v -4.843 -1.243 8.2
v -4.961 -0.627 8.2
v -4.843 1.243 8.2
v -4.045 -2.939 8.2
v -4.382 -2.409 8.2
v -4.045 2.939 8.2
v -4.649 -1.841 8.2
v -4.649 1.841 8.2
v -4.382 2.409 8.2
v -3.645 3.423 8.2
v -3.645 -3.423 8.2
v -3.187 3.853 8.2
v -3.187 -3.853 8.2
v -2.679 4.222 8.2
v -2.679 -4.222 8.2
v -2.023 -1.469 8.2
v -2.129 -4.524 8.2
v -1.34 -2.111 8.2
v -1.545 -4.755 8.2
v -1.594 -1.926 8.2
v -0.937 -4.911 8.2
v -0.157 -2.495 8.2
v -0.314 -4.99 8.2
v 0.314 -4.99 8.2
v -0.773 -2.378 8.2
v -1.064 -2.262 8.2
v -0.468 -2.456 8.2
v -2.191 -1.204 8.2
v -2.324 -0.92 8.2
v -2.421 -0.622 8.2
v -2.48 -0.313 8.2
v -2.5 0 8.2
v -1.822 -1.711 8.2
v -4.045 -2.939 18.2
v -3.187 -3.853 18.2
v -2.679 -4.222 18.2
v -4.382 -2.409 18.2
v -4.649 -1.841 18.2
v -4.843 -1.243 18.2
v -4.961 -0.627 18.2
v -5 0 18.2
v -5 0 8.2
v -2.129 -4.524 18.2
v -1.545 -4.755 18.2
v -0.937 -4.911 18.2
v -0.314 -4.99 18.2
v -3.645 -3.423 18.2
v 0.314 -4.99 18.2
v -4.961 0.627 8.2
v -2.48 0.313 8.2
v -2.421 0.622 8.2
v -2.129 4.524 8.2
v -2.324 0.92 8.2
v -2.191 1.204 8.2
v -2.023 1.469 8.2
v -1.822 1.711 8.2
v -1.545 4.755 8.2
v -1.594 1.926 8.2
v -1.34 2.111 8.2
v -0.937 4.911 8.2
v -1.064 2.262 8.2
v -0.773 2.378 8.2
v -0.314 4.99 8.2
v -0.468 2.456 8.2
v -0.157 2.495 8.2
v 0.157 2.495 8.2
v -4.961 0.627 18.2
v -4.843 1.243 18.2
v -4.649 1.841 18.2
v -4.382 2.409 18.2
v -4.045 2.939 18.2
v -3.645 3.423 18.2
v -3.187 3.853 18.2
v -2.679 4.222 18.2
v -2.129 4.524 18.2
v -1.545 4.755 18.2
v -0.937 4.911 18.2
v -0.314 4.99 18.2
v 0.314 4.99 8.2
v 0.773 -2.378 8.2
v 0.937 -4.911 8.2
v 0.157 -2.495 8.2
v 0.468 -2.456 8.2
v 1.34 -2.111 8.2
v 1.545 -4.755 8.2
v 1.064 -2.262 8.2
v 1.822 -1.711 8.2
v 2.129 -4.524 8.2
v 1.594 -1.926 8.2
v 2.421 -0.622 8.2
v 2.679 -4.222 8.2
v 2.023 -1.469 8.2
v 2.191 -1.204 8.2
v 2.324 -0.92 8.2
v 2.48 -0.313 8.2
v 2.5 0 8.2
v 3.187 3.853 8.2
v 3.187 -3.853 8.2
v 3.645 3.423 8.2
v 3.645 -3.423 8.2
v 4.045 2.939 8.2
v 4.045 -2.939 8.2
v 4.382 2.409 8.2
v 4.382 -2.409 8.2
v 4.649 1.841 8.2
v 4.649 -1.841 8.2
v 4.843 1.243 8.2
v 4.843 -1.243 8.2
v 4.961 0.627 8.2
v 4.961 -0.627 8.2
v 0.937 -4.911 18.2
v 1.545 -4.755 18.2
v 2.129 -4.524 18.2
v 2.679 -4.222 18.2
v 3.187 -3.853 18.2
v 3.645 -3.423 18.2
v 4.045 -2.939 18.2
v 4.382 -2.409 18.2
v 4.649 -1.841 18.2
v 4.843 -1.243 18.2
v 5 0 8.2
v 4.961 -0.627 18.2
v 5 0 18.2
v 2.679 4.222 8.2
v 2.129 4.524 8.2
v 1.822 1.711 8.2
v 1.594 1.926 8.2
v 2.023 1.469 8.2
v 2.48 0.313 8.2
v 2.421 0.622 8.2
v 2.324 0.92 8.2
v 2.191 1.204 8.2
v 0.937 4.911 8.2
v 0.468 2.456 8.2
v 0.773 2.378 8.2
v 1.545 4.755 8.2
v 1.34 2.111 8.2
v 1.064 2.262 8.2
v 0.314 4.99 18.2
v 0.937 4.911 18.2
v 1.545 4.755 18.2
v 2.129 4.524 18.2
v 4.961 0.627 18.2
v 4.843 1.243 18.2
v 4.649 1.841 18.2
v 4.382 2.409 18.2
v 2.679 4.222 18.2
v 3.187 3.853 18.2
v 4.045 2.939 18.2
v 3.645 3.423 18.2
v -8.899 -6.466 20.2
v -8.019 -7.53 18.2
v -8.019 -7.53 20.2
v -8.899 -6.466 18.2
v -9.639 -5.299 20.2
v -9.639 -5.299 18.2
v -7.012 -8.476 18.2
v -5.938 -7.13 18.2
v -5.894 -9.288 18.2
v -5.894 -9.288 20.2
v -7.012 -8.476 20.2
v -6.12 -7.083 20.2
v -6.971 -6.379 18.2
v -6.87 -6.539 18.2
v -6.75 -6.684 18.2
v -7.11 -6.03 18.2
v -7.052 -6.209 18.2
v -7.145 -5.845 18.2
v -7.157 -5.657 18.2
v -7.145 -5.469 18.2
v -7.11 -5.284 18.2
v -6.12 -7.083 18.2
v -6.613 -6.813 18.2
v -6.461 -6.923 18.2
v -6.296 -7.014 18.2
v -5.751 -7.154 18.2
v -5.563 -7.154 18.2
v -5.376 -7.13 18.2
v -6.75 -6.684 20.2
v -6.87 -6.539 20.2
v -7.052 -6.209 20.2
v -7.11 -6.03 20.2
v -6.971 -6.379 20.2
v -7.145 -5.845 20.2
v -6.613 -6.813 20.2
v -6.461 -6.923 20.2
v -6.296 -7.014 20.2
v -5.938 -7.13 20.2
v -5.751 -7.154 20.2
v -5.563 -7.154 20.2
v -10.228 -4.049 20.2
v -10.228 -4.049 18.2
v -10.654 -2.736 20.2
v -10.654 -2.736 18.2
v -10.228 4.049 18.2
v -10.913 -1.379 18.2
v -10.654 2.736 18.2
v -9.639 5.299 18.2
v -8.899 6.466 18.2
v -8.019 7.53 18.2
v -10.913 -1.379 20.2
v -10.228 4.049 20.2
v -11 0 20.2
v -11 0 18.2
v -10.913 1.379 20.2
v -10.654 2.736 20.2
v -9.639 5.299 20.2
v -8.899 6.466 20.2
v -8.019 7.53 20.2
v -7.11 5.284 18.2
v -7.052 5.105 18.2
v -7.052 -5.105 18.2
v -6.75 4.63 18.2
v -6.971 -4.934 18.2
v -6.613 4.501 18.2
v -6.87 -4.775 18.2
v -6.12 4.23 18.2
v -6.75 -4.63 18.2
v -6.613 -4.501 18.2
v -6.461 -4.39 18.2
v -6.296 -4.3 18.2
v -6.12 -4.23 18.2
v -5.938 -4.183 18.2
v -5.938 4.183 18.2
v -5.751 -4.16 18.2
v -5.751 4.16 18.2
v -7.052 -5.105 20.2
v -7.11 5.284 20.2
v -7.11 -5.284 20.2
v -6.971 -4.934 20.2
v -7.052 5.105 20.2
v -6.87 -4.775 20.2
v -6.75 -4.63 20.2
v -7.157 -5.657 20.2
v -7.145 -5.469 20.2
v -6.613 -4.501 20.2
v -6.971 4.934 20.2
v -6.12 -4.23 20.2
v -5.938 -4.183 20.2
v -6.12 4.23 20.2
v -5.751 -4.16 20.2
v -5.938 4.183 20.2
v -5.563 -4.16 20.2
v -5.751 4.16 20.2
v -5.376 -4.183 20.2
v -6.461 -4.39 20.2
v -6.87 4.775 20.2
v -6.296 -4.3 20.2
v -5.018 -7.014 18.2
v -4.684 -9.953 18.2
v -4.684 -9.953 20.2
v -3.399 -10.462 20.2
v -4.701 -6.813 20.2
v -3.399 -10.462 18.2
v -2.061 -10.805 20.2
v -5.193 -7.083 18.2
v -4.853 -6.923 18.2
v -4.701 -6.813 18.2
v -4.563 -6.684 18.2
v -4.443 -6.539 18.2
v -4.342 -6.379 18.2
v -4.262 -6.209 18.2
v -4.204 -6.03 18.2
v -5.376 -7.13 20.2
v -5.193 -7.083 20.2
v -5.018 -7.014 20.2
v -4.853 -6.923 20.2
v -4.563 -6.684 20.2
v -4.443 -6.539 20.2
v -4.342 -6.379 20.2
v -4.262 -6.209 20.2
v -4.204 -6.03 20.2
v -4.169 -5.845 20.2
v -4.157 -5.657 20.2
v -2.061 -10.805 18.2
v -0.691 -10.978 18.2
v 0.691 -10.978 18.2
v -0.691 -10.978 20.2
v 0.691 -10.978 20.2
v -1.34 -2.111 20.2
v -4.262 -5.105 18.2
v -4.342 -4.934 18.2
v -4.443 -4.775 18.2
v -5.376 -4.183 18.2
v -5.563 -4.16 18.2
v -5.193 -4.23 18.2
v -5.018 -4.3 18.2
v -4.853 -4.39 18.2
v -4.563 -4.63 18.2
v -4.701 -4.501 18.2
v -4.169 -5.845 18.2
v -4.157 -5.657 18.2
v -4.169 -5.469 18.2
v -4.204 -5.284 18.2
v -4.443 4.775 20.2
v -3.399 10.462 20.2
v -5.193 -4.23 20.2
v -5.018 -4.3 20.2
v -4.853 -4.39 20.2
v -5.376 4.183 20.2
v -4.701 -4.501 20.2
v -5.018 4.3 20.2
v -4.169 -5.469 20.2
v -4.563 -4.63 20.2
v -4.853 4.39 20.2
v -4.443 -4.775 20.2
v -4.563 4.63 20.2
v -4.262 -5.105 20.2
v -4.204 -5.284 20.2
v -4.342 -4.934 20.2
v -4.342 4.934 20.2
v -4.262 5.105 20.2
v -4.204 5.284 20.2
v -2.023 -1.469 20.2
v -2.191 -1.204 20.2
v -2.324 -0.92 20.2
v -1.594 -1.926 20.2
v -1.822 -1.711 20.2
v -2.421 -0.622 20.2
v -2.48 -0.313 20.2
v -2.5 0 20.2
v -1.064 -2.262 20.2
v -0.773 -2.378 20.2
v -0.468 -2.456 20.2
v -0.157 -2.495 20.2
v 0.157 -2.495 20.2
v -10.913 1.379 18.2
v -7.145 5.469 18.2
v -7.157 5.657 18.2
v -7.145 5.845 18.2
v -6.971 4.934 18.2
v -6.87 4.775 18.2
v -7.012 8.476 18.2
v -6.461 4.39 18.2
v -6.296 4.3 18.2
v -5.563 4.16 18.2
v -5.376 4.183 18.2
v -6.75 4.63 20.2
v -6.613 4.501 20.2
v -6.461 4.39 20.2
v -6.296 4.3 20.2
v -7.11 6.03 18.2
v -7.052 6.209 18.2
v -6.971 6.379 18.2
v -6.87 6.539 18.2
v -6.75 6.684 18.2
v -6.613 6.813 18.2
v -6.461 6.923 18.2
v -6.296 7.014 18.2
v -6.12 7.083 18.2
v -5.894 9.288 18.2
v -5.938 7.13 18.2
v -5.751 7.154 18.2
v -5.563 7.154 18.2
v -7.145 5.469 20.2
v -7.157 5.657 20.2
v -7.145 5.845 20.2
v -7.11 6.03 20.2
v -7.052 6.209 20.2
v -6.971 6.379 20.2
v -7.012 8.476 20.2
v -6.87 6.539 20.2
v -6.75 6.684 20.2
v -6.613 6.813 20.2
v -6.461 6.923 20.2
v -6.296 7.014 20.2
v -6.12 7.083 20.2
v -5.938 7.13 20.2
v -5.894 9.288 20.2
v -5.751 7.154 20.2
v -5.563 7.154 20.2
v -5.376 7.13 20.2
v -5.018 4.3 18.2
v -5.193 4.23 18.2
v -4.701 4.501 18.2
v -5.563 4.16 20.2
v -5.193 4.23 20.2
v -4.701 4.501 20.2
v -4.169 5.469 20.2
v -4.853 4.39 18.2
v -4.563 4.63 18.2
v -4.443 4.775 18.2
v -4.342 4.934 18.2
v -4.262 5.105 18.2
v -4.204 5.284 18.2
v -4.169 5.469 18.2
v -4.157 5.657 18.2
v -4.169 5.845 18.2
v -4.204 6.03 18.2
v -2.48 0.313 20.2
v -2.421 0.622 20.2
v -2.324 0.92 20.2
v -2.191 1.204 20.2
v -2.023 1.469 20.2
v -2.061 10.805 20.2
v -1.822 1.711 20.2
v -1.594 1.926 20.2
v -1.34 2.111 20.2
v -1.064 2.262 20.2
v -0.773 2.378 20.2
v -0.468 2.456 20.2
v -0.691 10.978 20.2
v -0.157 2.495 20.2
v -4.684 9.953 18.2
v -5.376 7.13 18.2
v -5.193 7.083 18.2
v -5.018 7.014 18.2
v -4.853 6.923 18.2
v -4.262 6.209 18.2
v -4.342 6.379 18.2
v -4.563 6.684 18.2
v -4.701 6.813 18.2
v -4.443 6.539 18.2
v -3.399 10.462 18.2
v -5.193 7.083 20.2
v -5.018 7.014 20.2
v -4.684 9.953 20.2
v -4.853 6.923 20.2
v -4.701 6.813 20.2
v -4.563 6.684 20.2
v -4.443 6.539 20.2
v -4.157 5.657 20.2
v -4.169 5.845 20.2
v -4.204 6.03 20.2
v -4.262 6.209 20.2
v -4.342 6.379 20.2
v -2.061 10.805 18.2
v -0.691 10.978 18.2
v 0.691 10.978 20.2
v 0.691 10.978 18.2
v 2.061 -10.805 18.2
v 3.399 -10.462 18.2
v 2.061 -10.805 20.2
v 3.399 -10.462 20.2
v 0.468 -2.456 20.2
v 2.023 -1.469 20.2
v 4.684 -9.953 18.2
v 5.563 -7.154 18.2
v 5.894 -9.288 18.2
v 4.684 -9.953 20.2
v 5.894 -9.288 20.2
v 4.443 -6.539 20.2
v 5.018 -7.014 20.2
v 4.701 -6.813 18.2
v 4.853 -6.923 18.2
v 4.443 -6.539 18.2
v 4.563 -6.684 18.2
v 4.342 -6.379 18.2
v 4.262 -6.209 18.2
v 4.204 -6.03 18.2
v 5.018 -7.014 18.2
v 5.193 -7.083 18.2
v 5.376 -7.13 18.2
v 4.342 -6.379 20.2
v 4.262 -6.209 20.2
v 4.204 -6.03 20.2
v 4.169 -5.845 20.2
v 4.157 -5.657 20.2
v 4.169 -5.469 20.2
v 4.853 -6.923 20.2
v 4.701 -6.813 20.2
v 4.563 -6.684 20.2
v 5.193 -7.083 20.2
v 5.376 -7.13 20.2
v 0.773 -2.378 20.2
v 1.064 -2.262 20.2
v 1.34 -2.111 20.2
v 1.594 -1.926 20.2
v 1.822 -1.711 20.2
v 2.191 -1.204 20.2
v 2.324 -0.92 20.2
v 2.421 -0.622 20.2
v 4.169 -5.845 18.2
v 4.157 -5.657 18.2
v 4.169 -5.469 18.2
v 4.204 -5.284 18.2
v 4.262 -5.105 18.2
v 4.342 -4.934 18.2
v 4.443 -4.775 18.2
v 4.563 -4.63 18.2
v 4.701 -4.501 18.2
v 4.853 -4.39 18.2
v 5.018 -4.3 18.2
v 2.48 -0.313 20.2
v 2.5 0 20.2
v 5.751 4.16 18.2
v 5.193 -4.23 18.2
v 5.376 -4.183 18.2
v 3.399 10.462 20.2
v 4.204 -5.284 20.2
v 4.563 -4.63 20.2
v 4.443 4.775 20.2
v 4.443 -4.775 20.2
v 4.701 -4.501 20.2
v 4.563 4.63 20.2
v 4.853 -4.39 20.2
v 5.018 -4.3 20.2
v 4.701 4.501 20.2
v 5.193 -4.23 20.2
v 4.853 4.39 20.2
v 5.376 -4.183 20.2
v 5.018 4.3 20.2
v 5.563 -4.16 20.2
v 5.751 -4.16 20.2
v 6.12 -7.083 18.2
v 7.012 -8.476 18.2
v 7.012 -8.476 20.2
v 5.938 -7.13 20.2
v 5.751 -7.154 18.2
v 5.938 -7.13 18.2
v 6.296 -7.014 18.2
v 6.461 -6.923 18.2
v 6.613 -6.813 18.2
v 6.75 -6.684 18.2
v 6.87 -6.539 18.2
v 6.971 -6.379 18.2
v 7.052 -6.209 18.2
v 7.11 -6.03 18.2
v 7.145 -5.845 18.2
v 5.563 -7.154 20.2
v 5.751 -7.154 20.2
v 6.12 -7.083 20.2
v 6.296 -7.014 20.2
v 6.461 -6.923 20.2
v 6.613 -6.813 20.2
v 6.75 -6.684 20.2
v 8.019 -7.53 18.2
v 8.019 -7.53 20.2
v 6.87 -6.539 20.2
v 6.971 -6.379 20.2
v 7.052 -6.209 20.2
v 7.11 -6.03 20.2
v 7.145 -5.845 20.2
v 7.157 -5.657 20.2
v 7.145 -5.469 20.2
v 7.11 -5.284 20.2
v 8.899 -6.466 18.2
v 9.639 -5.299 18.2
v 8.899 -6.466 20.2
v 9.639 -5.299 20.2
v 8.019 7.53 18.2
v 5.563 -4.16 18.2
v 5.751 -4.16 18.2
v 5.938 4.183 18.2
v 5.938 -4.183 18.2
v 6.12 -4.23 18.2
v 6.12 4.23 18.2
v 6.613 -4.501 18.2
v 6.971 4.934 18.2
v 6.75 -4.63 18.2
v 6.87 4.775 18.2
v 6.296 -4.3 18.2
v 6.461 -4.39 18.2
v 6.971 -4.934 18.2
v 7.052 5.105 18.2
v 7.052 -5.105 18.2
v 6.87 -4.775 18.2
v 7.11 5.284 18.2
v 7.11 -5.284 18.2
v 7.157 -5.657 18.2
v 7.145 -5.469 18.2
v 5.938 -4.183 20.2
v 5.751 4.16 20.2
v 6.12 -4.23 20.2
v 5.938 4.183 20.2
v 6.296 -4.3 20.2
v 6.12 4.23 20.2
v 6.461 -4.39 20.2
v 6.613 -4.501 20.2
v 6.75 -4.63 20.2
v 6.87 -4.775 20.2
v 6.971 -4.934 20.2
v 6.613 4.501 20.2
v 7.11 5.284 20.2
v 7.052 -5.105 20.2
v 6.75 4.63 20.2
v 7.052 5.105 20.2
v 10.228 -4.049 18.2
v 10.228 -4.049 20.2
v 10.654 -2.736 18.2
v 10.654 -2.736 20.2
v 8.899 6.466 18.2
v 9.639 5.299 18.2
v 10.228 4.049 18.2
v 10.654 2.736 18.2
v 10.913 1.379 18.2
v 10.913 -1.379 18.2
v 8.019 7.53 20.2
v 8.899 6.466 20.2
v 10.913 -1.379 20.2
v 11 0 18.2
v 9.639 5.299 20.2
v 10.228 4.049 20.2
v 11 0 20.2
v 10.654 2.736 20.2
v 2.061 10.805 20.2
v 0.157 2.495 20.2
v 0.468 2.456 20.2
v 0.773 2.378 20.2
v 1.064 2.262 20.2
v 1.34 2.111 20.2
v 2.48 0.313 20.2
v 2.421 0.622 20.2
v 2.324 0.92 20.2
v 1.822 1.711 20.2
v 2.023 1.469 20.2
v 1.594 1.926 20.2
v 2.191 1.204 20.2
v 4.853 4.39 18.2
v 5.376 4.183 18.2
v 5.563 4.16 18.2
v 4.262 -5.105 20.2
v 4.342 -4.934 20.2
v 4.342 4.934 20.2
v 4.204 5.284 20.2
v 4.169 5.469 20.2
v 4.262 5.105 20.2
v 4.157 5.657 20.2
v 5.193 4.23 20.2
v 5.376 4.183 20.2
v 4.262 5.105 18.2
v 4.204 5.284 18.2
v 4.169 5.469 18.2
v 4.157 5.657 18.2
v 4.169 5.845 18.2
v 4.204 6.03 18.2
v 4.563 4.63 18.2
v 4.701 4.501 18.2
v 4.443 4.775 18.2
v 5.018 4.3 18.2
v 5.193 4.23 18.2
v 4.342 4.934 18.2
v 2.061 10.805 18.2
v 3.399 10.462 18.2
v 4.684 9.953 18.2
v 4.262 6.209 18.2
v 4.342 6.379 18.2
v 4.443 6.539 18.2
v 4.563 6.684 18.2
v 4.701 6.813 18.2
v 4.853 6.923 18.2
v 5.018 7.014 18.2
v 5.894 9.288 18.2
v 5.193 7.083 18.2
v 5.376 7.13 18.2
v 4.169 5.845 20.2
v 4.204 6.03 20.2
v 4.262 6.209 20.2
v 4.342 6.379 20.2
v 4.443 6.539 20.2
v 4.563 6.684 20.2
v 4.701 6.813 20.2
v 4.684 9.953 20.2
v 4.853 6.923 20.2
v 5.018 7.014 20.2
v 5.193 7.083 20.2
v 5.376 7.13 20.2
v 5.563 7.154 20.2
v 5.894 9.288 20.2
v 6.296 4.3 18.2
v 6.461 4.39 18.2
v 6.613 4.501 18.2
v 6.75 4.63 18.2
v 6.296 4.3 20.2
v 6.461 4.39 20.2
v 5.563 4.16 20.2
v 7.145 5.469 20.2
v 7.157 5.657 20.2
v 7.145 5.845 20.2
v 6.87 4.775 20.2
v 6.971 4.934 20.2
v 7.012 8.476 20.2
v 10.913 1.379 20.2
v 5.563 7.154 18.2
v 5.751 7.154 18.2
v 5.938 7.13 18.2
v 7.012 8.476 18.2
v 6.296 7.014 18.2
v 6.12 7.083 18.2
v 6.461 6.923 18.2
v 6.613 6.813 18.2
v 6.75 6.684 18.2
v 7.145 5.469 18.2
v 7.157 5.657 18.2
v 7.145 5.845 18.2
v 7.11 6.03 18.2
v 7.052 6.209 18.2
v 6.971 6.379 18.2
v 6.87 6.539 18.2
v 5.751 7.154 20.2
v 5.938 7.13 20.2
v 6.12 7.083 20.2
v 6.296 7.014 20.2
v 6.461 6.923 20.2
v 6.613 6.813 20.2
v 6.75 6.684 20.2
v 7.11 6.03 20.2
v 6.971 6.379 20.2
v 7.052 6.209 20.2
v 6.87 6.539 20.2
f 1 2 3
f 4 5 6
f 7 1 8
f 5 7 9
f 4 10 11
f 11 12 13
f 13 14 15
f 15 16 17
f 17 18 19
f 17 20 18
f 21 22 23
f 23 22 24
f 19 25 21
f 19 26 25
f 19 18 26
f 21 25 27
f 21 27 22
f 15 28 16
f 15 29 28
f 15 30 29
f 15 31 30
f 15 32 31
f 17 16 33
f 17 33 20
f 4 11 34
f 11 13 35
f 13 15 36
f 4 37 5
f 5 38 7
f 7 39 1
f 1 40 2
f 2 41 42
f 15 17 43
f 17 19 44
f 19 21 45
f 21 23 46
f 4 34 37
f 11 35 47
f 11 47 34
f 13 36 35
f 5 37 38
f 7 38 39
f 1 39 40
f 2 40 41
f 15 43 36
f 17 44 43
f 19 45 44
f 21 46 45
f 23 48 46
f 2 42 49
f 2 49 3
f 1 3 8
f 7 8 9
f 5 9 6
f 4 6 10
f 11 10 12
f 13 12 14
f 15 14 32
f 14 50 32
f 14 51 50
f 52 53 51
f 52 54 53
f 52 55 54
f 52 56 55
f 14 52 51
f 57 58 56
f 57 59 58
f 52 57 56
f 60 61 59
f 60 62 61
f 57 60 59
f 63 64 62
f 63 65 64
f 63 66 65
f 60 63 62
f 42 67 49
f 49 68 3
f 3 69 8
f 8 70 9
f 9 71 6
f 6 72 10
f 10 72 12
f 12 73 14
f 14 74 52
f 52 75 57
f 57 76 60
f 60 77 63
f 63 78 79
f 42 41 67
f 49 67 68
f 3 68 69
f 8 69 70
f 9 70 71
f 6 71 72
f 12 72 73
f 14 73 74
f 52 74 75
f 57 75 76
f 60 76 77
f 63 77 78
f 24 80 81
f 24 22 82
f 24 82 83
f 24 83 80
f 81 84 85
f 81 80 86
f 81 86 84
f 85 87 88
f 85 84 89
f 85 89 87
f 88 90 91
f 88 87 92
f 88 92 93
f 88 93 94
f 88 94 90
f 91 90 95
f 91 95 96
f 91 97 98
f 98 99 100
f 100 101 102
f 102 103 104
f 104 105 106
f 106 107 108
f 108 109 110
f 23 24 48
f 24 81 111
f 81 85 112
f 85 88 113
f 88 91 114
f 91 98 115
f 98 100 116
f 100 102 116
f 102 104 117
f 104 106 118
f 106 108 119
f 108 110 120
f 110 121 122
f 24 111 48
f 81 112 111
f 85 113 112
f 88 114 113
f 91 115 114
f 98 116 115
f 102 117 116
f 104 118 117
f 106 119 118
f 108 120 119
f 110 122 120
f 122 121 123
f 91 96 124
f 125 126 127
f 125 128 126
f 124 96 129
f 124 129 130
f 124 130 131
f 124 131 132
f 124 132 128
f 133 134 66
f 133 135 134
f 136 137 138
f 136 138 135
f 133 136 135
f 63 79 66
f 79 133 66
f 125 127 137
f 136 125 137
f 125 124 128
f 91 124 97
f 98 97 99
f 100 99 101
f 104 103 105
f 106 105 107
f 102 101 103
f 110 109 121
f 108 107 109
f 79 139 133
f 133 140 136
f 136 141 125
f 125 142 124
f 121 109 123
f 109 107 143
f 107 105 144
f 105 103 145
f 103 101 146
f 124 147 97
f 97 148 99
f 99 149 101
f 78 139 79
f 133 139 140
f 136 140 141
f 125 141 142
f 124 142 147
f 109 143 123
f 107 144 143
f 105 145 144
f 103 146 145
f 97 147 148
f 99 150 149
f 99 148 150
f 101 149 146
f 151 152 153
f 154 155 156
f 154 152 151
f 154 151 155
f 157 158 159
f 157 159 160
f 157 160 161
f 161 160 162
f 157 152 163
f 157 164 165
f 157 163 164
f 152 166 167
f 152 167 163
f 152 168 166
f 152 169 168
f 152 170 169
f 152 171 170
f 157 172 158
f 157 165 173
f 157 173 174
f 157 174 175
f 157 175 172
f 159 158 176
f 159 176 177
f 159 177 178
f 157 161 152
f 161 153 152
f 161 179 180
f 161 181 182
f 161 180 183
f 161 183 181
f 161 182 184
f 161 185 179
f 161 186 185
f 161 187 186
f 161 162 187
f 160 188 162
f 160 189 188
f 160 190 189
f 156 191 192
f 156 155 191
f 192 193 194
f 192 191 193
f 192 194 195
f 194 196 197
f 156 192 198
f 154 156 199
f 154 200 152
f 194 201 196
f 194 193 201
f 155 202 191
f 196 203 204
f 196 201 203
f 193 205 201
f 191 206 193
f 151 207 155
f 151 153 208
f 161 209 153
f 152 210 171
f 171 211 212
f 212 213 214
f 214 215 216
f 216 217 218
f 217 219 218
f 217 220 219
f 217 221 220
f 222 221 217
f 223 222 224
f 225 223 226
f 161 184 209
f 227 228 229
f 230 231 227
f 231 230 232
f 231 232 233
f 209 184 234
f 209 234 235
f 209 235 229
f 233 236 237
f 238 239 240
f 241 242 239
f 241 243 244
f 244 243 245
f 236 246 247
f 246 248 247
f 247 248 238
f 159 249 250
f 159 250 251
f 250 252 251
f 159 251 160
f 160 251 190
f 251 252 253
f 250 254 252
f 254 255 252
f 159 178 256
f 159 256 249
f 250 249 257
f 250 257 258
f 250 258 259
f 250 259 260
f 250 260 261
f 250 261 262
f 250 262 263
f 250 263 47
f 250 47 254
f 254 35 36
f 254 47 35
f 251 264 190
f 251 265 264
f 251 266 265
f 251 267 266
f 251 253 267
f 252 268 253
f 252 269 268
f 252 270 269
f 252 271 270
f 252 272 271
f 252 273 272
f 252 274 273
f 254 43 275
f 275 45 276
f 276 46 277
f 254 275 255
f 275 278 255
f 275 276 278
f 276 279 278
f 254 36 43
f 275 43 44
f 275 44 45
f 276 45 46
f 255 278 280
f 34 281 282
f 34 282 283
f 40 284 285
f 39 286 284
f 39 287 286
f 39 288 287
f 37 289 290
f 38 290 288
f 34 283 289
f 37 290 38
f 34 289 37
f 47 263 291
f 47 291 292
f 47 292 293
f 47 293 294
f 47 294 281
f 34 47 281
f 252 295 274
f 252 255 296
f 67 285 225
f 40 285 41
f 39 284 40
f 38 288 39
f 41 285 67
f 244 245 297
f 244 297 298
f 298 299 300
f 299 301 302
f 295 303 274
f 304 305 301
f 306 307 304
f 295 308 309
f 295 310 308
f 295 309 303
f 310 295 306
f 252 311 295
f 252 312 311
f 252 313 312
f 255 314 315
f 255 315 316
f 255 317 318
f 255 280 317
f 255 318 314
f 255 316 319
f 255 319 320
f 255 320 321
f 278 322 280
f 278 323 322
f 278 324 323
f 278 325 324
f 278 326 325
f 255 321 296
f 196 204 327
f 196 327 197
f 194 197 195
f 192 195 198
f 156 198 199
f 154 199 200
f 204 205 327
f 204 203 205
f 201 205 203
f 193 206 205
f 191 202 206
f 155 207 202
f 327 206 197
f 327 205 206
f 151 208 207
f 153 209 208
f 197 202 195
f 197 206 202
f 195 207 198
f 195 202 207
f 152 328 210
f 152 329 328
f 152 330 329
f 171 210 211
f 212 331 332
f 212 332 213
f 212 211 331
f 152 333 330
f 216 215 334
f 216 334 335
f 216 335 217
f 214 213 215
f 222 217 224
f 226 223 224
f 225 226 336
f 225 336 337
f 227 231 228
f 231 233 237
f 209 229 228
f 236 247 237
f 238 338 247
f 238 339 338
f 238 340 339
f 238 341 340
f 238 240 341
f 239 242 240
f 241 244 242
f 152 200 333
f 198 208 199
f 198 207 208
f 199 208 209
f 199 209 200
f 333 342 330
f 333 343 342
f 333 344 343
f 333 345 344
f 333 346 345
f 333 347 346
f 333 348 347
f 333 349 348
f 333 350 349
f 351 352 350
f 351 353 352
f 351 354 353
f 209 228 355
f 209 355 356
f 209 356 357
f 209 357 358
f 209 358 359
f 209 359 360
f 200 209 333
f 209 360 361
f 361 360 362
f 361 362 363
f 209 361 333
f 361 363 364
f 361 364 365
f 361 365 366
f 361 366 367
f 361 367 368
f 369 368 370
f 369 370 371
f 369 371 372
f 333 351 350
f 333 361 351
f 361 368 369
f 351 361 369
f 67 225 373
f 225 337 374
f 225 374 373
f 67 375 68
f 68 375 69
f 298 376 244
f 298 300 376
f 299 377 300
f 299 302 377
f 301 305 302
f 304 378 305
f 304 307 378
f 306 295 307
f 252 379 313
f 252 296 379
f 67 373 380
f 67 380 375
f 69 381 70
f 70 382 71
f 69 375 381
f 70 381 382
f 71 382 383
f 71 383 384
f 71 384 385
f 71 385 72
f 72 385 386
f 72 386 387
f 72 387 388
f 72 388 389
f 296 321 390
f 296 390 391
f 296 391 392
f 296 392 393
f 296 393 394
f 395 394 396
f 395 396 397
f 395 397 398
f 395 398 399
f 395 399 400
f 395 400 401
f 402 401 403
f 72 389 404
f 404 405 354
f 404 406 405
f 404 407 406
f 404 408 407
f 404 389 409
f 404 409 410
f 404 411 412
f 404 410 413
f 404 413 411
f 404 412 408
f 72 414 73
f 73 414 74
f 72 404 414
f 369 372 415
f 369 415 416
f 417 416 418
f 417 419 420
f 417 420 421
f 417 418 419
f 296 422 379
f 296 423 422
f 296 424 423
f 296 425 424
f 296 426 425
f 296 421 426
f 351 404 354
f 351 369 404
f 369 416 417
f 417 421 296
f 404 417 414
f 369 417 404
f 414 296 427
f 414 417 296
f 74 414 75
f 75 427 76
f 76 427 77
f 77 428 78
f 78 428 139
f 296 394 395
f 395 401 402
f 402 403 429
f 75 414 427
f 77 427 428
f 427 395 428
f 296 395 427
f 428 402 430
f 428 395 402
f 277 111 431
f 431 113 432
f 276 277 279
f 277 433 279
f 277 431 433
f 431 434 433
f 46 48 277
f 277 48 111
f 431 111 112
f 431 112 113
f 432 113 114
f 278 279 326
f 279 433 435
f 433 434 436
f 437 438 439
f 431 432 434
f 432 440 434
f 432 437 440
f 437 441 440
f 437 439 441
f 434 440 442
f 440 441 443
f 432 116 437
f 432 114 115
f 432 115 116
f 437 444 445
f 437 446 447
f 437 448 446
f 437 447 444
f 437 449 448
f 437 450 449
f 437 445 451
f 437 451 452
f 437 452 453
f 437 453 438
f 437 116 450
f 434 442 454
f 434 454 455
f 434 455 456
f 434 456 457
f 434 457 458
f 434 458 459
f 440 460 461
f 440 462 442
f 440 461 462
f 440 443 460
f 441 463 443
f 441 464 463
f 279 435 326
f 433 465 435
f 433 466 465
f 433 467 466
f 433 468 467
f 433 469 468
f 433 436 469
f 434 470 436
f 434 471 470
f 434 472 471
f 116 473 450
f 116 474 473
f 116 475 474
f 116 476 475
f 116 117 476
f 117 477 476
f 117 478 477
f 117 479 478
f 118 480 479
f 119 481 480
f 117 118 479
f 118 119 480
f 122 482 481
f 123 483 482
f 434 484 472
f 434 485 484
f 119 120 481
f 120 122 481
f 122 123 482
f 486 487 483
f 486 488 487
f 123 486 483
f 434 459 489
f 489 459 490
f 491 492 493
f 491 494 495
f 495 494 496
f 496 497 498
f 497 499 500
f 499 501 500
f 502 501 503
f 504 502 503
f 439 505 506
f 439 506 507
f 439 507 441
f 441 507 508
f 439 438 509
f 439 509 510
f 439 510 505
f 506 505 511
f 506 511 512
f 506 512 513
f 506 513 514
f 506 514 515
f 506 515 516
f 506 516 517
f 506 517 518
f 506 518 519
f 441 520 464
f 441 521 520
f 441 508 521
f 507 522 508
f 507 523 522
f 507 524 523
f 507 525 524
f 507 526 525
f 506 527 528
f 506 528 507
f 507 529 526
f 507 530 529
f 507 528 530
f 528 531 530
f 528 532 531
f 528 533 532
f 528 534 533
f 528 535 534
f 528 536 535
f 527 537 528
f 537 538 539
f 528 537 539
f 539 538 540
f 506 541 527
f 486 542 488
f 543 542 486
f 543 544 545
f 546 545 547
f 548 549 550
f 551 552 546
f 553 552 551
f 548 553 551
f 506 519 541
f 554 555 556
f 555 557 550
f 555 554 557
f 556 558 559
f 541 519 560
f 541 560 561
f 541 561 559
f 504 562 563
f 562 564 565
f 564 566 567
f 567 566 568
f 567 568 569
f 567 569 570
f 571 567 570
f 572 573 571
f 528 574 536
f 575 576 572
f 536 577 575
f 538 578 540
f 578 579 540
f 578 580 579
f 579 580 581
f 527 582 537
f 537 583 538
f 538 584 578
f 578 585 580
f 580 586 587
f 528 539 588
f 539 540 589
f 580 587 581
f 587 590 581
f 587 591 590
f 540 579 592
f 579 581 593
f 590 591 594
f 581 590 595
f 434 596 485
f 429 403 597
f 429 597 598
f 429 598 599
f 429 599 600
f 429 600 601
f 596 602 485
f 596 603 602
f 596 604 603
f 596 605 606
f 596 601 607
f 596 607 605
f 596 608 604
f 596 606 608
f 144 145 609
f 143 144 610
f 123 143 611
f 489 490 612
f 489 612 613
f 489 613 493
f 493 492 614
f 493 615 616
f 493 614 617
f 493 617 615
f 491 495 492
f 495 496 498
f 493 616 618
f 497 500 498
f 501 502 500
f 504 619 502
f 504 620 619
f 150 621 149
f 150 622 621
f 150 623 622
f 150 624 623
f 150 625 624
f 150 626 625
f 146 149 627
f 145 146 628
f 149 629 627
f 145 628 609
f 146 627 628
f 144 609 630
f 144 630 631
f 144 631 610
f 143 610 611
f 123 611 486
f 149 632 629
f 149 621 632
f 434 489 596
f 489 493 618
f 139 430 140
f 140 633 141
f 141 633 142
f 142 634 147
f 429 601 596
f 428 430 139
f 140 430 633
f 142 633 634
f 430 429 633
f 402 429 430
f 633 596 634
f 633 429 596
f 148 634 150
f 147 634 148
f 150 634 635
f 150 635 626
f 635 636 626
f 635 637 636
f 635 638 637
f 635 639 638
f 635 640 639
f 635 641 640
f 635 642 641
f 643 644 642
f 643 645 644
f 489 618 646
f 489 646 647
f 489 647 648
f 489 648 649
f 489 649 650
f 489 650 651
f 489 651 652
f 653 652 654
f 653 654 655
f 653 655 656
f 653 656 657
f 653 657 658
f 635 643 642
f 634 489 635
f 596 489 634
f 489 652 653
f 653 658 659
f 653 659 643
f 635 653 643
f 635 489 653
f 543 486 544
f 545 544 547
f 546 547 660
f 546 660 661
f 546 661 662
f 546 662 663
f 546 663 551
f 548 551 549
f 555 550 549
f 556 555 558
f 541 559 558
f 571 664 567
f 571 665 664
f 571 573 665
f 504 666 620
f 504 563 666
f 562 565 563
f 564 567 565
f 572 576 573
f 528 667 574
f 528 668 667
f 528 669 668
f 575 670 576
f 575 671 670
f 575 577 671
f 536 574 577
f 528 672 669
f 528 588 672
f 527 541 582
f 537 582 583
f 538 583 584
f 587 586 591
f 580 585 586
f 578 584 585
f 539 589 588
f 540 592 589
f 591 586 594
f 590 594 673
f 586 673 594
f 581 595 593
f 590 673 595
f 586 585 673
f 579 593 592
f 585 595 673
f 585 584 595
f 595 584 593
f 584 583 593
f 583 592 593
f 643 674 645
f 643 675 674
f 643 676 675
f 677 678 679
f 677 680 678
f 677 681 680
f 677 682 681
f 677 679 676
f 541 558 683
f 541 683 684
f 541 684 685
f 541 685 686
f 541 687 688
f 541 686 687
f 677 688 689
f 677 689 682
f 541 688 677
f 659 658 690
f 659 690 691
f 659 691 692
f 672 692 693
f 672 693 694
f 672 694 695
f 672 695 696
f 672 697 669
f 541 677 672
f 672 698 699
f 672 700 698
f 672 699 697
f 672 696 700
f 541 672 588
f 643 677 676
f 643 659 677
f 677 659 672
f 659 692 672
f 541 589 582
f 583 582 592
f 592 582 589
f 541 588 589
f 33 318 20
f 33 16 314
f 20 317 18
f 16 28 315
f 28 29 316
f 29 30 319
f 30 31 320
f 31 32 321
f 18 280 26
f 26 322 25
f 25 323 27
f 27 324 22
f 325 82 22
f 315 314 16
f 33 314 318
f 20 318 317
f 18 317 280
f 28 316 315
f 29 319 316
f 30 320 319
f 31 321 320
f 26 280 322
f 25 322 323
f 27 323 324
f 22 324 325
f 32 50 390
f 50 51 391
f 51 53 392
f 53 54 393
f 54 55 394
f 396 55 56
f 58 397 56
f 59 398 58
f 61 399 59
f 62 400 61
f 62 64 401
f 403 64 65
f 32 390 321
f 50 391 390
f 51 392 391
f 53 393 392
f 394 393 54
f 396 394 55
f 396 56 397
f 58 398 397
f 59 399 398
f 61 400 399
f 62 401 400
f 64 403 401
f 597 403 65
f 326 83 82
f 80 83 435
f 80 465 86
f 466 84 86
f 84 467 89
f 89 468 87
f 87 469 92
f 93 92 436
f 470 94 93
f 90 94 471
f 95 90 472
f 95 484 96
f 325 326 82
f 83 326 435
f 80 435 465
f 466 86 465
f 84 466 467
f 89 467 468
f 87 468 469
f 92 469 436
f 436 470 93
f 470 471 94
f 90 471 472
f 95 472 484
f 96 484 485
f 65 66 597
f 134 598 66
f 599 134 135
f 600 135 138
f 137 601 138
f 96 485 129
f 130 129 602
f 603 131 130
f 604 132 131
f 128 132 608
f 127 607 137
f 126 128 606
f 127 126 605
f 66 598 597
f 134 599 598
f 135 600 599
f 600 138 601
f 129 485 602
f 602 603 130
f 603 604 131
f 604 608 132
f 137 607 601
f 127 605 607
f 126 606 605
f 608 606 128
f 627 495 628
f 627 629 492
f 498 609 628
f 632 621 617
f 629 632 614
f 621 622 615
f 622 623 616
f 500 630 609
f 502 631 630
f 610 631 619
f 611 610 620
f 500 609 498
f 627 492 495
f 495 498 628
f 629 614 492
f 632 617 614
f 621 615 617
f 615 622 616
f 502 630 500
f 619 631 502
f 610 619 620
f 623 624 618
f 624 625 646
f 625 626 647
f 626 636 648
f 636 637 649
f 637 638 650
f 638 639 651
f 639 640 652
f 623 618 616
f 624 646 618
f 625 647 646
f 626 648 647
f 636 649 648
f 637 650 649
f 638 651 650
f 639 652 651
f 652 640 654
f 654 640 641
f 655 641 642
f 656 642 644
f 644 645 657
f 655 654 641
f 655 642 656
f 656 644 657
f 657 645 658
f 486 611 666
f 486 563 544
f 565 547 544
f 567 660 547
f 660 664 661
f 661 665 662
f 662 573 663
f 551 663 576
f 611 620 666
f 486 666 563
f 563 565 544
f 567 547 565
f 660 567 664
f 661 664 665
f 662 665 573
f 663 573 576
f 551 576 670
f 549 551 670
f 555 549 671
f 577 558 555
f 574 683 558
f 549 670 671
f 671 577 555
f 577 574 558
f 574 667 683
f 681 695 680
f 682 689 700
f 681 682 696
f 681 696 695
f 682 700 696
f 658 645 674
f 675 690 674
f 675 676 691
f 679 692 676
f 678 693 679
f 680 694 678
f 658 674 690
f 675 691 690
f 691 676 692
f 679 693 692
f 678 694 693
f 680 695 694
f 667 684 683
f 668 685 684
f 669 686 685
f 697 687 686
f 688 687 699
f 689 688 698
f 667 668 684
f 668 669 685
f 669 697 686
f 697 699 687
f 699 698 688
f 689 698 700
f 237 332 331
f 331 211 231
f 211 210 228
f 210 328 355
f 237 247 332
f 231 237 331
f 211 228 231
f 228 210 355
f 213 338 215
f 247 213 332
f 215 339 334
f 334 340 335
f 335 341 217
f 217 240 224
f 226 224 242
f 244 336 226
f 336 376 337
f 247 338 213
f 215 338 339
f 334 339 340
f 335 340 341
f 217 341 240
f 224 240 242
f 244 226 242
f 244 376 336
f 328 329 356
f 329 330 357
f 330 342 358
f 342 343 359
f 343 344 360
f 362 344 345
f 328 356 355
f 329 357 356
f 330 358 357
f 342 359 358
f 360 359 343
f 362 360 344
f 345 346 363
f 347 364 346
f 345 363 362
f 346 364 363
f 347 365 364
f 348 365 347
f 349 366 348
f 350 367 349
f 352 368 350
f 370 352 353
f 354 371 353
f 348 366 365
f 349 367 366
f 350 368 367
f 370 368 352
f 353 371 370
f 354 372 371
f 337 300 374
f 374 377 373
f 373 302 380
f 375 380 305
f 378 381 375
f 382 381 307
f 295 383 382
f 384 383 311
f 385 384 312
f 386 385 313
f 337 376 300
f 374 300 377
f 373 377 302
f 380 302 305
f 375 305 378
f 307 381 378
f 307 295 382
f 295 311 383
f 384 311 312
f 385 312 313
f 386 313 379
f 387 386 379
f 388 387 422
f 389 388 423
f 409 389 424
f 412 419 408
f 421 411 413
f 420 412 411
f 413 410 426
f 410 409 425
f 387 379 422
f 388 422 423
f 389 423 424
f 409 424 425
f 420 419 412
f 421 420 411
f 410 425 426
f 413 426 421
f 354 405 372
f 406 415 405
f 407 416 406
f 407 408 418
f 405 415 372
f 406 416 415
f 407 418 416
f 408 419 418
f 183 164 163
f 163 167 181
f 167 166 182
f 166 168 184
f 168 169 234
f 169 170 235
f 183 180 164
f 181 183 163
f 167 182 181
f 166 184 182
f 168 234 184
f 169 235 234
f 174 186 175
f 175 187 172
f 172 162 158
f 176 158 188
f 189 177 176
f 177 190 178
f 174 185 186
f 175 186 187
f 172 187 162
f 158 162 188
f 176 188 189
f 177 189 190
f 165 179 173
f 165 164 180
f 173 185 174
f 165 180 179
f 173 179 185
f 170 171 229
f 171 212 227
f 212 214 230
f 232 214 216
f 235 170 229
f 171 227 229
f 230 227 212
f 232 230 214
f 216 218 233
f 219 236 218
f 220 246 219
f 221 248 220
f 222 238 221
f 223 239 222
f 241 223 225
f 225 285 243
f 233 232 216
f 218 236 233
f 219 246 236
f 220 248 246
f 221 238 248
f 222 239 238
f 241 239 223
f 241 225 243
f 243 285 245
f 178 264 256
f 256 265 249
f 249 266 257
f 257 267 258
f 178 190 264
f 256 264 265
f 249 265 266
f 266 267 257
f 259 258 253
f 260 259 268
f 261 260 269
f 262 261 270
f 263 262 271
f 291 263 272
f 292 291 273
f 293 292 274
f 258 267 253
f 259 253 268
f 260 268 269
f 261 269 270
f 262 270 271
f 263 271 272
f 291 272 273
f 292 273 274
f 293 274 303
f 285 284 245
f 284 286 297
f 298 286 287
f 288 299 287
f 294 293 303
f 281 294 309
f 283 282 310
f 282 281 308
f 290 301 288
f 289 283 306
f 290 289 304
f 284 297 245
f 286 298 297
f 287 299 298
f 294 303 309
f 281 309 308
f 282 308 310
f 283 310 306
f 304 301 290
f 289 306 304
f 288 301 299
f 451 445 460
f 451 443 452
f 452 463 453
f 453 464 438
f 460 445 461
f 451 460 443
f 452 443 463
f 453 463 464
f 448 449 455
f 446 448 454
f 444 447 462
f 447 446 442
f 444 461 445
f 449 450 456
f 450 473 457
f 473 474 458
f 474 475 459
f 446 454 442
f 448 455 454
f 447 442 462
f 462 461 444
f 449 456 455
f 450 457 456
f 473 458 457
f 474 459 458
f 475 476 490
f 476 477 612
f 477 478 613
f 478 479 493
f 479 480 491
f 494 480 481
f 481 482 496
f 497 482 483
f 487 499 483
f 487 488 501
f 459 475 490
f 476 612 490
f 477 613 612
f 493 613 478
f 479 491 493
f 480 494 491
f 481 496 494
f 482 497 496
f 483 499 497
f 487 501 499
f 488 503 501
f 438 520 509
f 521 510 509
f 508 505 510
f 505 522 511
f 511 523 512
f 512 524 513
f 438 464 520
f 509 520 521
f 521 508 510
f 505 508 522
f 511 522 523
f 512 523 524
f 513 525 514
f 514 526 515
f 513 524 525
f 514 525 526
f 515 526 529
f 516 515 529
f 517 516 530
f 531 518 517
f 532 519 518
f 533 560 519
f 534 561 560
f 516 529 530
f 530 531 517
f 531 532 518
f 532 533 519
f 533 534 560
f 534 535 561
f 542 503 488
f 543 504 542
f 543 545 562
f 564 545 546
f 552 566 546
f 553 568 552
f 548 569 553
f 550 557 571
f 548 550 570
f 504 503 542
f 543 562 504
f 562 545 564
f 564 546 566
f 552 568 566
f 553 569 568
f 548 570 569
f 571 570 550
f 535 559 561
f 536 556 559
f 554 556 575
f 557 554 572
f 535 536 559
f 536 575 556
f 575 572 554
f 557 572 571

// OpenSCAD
$fn = 50;

difference() {
	union() {
		translate(v = [0, 0, 8.2]) {
			cylinder(h = 10, r = 5.0);
		}
		translate(v = [0, 0, 18.2]) {
			cylinder(h = 2, r = 11.0);
		}
	}
	union() {
		translate(v = [0, 0, 7.199999999999999]) {
			cylinder(h = 14, r = 2.5);
		}
		translate(v = [5.656854249492381, 5.656854249492381, 17.2]) {
			cylinder(h = 4, r = 1.5);
		}
		translate(v = [-5.65685424949238, 5.656854249492381, 17.2]) {
			cylinder(h = 4, r = 1.5);
		}
		translate(v = [-5.6568542494923815, -5.65685424949238, 17.2]) {
			cylinder(h = 4, r = 1.5);
		}
		translate(v = [5.656854249492379, -5.6568542494923815, 17.2]) {
			cylinder(h = 4, r = 1.5);
		}
	}
}
